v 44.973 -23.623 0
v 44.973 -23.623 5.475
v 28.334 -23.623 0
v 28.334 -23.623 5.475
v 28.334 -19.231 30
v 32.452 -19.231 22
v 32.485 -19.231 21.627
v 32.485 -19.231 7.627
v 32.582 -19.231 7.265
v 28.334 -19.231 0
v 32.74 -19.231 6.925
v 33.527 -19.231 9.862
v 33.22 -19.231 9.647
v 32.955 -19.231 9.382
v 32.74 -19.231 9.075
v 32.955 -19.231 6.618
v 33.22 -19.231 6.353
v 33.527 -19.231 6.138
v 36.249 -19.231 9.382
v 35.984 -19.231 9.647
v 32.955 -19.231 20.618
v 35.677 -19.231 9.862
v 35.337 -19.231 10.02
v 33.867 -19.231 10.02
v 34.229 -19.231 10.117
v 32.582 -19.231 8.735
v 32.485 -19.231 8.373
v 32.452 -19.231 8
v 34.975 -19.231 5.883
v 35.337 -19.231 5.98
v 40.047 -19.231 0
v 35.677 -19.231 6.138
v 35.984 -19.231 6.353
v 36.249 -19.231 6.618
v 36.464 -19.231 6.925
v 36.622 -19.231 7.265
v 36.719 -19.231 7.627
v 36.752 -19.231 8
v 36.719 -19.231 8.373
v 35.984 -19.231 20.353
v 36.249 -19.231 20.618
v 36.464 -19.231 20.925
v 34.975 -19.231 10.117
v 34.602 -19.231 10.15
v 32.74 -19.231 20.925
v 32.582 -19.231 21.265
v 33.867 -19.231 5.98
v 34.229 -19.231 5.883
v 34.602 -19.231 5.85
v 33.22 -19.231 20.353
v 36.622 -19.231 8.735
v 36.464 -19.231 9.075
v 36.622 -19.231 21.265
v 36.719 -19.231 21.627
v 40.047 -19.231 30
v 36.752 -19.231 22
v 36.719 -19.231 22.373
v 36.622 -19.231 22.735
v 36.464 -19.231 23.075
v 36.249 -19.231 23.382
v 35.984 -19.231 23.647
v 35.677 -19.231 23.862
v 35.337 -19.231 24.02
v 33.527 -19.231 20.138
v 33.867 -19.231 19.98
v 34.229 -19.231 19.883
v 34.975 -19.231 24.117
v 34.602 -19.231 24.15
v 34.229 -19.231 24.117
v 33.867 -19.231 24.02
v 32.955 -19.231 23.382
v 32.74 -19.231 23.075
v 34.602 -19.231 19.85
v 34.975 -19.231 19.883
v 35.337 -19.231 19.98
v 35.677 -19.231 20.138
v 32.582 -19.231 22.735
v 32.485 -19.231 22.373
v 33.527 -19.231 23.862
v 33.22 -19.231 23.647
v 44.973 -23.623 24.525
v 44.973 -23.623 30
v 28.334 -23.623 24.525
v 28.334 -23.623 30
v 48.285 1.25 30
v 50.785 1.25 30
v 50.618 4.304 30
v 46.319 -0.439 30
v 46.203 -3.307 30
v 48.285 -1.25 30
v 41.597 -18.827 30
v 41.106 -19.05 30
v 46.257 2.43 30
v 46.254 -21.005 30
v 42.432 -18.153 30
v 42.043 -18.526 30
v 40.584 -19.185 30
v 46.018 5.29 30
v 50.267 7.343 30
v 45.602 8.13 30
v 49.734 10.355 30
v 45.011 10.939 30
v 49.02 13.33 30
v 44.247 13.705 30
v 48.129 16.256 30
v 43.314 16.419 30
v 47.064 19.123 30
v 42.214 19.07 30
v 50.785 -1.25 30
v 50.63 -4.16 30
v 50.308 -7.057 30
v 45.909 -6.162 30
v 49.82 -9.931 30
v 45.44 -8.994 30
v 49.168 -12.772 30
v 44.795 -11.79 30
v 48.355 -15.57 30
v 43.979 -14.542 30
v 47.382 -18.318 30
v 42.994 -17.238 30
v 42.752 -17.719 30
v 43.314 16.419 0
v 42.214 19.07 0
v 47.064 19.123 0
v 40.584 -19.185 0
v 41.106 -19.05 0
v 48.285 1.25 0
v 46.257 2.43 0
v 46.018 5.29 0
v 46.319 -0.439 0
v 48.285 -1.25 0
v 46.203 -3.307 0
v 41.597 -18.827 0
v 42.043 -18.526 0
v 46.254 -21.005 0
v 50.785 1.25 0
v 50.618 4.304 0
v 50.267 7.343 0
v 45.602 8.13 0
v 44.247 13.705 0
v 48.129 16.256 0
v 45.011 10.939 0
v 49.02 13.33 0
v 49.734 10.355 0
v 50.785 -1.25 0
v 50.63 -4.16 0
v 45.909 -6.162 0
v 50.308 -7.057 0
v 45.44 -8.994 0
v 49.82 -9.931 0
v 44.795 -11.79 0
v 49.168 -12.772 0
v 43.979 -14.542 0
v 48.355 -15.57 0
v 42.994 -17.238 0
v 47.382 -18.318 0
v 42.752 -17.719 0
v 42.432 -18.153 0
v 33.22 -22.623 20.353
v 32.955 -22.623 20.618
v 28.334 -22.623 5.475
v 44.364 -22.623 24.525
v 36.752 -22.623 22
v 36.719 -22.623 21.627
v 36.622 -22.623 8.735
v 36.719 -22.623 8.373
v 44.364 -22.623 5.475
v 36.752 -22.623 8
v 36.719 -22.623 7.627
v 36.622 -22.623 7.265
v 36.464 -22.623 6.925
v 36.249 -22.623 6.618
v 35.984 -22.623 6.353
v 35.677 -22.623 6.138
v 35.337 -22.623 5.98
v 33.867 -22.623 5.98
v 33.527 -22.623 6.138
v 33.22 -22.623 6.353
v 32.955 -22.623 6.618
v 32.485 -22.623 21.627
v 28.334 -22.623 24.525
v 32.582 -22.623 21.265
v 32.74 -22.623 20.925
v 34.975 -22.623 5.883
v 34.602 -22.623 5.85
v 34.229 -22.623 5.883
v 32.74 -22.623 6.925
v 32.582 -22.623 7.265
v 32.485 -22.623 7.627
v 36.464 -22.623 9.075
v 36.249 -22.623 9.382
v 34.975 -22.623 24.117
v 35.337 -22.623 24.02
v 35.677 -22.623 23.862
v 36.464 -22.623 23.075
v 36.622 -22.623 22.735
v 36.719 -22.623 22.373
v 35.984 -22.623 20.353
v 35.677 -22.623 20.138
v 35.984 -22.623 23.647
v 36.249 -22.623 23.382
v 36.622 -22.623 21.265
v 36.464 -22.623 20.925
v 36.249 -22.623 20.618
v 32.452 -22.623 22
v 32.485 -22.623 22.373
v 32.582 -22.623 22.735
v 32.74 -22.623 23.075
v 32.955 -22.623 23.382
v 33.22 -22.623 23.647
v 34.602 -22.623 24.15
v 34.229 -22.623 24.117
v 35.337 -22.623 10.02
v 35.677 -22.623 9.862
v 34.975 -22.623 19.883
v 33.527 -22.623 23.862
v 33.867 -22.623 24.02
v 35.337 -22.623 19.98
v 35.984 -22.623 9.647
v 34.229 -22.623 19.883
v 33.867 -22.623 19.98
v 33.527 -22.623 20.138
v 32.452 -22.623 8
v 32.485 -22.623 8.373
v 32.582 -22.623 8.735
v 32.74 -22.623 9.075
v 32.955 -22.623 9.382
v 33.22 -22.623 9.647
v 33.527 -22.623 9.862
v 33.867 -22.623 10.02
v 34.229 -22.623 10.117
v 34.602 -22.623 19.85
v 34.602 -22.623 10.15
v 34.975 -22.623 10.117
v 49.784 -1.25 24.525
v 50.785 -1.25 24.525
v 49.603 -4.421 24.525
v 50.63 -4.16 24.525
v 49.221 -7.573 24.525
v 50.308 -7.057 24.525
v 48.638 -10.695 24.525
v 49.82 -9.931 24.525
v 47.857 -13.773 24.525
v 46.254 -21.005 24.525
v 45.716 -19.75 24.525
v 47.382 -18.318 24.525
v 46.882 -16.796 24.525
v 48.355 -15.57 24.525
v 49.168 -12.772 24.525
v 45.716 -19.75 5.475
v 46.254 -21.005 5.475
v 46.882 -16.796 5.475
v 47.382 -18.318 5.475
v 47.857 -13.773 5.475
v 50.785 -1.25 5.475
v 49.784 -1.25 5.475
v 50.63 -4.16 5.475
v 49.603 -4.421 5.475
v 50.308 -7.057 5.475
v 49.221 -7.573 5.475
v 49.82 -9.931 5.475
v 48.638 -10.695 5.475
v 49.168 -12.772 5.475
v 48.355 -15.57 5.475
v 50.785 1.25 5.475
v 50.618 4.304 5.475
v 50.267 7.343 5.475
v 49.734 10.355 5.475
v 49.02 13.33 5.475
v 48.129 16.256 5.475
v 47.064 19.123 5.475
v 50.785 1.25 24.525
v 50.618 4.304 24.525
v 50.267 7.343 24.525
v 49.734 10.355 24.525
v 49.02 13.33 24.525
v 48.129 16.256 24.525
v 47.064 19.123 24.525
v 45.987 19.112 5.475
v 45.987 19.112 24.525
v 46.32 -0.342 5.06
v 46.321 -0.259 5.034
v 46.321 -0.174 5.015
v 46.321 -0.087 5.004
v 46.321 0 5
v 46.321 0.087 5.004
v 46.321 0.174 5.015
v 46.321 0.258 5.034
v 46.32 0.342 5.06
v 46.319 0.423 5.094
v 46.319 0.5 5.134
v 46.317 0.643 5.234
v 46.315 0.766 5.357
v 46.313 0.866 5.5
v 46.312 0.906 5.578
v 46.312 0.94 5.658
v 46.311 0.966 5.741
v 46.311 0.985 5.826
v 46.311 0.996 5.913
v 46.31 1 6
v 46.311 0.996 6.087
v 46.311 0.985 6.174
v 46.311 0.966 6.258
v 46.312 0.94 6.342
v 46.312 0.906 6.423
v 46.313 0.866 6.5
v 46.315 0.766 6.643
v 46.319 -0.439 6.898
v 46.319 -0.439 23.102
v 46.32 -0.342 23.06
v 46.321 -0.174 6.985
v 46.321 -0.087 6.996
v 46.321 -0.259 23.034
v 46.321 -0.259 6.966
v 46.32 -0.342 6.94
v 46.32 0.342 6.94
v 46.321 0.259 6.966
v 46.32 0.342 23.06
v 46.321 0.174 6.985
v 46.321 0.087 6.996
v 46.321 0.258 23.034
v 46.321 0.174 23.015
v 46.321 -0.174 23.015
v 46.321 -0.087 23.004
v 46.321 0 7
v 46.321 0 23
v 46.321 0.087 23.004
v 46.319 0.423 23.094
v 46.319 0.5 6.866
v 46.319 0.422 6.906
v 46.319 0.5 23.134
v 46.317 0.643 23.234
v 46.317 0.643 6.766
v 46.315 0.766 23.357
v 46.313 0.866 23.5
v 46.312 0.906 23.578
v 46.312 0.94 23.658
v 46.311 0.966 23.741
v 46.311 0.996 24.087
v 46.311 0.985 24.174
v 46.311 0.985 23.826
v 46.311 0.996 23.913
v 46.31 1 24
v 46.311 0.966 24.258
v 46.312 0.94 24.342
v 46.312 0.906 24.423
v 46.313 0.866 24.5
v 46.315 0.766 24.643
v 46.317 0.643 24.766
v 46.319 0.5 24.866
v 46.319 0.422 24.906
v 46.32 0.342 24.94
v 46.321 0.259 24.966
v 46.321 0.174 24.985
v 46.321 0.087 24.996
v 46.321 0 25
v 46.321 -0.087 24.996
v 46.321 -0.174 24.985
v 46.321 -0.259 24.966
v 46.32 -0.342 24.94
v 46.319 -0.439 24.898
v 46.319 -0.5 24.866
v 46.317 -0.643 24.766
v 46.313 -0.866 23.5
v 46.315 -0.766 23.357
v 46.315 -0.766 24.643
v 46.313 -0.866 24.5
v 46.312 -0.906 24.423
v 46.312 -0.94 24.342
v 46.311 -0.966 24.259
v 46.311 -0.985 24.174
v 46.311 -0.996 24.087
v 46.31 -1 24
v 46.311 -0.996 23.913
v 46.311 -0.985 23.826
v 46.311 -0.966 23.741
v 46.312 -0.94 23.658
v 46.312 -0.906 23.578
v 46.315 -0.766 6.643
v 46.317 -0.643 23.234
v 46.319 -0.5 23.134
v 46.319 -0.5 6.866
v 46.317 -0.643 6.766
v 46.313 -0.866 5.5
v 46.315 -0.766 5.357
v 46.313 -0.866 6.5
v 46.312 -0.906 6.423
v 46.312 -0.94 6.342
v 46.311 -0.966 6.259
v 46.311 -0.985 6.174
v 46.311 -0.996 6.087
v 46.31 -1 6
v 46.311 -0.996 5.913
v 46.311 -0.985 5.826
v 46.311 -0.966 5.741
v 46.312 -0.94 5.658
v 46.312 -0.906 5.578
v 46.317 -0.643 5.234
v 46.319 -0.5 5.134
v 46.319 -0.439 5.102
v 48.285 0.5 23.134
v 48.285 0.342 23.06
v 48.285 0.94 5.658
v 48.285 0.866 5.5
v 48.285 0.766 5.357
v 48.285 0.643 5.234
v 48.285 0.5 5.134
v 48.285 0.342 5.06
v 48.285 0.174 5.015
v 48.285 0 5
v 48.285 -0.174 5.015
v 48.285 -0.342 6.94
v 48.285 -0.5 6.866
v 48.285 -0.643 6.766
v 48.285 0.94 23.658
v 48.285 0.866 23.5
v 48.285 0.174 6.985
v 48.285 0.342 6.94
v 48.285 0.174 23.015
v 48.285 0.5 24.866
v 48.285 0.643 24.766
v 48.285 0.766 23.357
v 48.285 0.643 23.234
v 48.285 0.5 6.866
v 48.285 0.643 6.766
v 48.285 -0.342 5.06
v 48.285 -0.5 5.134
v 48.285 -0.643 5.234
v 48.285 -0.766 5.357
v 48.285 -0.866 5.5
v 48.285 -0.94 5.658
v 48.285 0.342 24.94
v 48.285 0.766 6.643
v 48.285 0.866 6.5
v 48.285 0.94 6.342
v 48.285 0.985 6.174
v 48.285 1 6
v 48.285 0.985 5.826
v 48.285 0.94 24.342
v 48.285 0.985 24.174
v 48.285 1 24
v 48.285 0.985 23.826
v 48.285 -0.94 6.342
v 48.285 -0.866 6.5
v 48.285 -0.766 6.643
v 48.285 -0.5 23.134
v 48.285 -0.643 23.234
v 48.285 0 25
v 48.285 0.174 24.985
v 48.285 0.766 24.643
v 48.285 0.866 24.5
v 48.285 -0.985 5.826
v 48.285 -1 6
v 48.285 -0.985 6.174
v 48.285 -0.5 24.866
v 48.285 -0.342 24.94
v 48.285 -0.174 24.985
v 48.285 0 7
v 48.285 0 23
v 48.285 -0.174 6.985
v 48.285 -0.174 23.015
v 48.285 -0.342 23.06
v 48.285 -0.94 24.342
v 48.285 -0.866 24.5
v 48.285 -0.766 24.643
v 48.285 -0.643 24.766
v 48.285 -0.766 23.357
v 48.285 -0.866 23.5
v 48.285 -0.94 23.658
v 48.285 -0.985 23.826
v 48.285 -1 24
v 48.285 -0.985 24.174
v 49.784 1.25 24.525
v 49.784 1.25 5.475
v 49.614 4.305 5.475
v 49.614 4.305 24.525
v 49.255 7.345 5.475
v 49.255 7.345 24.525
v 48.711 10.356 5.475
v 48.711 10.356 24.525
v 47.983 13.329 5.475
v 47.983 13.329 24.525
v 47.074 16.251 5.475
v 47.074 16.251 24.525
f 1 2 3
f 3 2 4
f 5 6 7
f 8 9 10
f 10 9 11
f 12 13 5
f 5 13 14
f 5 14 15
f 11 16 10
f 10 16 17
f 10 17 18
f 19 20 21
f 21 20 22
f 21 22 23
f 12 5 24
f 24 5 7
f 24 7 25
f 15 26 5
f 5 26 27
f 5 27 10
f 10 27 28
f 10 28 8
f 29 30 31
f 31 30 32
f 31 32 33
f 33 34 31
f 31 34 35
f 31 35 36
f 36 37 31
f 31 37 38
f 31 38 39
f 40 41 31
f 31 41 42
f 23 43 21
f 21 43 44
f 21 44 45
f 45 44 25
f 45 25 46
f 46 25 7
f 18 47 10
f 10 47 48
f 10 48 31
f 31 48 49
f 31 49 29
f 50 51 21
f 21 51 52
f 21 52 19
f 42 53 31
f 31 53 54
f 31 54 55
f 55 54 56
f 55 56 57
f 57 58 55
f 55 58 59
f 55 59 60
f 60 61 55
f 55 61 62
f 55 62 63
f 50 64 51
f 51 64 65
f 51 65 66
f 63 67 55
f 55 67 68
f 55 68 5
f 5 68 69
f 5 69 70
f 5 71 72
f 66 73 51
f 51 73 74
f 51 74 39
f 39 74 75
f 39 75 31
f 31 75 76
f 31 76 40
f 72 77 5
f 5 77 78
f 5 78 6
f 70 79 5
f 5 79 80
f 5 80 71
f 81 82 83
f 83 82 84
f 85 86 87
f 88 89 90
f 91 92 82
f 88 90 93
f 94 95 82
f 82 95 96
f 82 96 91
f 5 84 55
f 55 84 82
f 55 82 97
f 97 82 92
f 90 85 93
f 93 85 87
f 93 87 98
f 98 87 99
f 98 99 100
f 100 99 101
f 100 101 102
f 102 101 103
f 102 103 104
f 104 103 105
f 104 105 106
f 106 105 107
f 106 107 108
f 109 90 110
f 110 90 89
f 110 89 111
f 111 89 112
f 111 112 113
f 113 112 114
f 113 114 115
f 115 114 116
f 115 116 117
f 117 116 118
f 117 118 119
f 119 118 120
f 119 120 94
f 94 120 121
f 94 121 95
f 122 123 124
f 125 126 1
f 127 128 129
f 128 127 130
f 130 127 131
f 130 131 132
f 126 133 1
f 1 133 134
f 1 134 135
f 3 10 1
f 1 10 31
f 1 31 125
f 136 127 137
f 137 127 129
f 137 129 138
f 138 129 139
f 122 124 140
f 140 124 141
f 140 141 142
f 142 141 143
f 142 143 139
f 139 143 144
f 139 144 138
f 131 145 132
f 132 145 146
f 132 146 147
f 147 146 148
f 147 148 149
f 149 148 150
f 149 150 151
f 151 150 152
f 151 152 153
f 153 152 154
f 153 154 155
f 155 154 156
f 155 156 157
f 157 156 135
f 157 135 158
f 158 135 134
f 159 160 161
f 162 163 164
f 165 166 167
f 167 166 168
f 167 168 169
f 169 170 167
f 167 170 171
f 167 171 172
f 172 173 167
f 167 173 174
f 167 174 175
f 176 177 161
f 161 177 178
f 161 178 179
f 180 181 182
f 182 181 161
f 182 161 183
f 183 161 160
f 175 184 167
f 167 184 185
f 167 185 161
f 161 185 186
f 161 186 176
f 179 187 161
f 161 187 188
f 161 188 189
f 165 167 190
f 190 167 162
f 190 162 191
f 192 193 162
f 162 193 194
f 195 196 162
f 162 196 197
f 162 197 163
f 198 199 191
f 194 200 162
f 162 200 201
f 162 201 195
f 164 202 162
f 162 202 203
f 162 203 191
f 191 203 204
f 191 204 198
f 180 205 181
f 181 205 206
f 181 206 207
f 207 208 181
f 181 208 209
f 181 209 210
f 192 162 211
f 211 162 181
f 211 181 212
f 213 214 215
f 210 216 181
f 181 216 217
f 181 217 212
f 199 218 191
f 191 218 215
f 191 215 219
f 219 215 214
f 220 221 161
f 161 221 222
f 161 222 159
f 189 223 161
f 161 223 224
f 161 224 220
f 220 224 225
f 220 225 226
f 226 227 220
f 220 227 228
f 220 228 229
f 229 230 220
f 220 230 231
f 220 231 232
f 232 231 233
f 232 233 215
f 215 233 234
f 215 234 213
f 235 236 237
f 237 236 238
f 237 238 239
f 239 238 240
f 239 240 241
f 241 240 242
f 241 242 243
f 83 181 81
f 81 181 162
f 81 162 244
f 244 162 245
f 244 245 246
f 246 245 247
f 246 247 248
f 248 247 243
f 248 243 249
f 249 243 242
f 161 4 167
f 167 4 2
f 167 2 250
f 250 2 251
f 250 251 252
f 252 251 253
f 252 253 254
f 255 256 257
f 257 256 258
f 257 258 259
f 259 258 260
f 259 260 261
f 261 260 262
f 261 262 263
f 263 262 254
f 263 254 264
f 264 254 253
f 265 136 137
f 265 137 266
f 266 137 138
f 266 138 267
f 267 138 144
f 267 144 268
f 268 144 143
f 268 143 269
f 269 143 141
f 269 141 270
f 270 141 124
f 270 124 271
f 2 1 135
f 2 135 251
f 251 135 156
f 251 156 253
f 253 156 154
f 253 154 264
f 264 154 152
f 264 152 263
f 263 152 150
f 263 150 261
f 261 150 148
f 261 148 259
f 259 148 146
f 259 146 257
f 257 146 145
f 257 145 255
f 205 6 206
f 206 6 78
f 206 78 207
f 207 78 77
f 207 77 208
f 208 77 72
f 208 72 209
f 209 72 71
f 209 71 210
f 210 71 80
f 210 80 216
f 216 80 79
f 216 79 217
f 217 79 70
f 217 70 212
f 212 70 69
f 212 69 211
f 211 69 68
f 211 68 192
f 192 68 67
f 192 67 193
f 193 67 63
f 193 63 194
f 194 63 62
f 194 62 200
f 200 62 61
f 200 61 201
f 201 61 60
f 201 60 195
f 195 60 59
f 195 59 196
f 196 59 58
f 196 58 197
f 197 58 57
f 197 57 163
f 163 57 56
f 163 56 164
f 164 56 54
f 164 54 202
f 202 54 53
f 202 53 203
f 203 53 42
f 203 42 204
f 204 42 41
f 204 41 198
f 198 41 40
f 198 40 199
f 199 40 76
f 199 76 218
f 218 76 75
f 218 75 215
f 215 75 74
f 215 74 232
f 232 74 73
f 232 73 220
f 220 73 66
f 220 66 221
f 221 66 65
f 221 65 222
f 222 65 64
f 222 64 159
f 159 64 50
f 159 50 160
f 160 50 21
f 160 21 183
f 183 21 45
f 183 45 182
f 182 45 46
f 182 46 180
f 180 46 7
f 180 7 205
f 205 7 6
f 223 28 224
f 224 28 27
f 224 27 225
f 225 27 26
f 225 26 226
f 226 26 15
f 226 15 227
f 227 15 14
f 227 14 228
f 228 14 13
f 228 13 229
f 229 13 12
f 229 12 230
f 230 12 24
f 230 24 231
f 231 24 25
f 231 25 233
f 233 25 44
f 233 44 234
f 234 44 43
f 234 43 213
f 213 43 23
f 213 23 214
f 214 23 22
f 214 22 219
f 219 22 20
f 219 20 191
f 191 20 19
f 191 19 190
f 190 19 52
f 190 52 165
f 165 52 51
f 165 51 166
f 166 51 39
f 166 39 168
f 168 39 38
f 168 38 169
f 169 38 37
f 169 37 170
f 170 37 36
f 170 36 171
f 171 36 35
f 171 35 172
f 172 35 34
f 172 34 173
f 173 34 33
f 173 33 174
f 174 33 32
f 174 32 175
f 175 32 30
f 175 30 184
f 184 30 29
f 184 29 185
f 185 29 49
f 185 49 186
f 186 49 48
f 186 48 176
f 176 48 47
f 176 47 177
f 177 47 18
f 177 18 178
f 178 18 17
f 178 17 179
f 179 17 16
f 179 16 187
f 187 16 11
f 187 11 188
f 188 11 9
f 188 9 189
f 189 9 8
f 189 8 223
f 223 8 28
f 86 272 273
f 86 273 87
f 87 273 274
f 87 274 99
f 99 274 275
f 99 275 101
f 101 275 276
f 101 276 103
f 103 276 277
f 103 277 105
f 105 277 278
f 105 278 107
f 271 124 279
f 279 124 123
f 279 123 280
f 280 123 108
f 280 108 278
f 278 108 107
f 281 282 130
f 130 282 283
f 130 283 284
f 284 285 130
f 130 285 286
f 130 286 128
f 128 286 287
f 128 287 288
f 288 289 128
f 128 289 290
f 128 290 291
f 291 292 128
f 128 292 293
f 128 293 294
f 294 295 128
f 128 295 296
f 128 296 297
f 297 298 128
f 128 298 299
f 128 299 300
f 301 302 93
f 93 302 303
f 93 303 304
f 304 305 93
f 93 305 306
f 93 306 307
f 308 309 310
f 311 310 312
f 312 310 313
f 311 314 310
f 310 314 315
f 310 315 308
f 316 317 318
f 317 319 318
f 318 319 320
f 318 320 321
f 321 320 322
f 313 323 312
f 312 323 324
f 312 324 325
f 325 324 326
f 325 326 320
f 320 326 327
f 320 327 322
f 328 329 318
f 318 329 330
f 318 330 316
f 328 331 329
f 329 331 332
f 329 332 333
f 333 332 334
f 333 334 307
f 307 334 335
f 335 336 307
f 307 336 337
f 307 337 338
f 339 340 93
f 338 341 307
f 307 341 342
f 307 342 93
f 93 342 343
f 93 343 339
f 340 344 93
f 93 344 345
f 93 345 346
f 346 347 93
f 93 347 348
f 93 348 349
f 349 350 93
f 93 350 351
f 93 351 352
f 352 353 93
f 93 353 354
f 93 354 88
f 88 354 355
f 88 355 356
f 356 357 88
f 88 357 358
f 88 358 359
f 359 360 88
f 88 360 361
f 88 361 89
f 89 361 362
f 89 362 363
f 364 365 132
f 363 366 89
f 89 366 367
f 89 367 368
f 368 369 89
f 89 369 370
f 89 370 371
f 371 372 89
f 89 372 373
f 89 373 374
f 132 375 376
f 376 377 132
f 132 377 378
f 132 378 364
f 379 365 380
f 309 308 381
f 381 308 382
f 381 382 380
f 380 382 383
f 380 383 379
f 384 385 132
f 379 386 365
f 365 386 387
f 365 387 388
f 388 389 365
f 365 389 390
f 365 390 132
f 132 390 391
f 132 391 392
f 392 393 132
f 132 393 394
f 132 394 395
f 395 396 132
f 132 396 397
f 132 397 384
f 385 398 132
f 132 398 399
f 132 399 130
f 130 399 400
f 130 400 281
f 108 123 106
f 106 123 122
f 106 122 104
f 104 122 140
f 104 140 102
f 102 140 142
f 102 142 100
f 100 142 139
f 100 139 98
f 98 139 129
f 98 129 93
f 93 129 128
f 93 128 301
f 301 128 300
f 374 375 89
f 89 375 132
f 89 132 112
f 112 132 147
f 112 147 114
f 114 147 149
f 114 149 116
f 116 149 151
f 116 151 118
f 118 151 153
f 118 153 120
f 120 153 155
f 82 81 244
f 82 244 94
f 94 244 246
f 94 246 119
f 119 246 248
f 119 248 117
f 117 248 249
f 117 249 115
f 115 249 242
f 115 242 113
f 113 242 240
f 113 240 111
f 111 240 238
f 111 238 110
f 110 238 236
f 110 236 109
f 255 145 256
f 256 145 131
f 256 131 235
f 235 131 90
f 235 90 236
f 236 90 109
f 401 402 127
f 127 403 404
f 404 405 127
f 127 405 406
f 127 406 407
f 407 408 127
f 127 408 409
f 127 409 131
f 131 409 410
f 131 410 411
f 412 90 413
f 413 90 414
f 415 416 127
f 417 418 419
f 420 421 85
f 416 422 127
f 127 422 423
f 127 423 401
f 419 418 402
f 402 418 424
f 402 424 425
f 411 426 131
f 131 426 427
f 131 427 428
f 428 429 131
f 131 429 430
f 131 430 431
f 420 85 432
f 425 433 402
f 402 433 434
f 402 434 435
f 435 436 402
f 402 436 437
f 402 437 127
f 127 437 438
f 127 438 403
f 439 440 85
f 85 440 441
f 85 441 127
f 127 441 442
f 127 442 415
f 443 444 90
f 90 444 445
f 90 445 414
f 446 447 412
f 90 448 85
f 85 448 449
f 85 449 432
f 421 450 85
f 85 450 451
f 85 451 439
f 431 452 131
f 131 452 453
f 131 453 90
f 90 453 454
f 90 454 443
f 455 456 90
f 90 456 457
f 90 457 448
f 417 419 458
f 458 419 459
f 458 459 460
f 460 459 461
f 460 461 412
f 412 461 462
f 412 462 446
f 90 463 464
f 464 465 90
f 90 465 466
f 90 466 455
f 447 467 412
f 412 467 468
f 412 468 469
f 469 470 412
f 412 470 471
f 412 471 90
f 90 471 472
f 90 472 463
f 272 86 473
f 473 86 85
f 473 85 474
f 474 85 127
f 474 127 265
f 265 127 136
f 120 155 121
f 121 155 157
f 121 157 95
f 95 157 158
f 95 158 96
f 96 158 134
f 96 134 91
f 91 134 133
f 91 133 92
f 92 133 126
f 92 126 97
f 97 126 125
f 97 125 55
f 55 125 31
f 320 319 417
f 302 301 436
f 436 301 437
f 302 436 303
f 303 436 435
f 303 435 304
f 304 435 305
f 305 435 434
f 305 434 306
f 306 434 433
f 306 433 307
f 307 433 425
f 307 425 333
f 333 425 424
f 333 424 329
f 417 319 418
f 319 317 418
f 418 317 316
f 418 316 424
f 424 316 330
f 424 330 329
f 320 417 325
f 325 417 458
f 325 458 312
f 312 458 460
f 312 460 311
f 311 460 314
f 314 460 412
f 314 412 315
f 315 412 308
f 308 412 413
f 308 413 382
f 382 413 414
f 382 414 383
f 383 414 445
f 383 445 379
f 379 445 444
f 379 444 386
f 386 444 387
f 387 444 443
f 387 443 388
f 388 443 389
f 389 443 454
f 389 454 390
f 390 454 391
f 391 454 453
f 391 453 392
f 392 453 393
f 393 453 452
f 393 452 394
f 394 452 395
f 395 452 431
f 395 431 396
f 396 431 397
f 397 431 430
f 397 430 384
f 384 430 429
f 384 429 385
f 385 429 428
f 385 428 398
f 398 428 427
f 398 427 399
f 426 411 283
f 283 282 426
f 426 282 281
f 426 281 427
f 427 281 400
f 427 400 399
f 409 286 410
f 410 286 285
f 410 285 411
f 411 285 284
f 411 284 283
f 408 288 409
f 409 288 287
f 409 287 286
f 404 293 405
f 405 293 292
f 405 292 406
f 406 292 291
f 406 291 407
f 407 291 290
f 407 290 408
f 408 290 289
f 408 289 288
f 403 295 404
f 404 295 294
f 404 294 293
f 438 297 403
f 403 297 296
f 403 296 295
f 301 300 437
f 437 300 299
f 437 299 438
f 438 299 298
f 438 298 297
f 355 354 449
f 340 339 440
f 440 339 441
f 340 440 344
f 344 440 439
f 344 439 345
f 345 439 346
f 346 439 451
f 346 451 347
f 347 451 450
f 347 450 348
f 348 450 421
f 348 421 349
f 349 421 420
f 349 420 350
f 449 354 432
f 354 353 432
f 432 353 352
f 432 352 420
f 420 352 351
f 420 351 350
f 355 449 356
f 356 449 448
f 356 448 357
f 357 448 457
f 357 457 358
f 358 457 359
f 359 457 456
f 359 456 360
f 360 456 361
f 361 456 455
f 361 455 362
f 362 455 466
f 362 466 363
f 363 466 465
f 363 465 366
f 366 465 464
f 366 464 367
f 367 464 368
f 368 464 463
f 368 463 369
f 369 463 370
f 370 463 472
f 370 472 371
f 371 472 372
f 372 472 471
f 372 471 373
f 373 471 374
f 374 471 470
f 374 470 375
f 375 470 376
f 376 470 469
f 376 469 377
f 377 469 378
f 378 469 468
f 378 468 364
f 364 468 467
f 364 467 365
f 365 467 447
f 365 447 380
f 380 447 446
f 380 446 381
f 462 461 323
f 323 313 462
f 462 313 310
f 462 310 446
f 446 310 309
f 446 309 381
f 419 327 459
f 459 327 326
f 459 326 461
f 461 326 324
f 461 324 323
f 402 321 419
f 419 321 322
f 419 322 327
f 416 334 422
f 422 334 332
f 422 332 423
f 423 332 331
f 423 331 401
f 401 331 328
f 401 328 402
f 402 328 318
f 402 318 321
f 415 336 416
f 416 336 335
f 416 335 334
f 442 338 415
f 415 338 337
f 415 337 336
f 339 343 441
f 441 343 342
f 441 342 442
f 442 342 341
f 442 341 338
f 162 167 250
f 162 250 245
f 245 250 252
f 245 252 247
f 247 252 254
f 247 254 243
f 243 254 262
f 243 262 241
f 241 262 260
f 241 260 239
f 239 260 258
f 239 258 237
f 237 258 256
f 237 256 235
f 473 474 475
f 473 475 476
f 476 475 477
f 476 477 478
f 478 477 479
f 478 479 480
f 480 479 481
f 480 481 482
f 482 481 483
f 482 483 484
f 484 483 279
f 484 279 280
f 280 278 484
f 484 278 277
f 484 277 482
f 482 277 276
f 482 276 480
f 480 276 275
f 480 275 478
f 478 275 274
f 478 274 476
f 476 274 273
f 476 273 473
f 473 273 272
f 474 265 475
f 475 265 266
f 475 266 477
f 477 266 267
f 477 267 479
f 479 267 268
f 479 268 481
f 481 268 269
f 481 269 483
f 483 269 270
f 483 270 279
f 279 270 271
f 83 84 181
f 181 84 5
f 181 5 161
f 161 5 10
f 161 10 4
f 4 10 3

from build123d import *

# Parameters (mm, degrees)
EXTRUSION1_DEPTH   = 30
FILLET1_R          = 3.175
SKETCH2_R          = 1
EXTRUSION8_DEPTH   = 2
SKETCH3_R          = 2.15
EXTRUSION11_DEPTH  = 71.357498555
EXTRUSION12_DEPTH  = 9.525
CUT_EXTRUDE1_DEPTH = 1.27


with BuildPart() as part:
    # Sketch1 → Extrusion1 (new body)
    with BuildSketch(Plane.XY):
        with BuildLine():
            Line((47.06353616, 19.123444108), (42.213867638, 19.070033288))
            ThreePointArc((42.213867638, 19.070033288), (46.321150196, -0.088533061), (42.140232503, -19.23116511))
            Line((42.140232503, -19.23116511), (27.063632515, -19.23116511))
            Line((27.063632515, -19.23116511), (27.063633082, -22.12345478))
            Line((27.063633082, -22.12345478), (27.063633082, -23.62345478))
            Line((27.063633082, -23.62345478), (44.972996835, -23.62345478))
            ThreePointArc((44.972996835, -23.62345478), (49.168432062, -12.771632691), (50.784831526, -1.249871881))
            Line((50.784831526, -1.249871881), (48.284855505, -1.250061095))
            Line((48.284855505, -1.250061095), (48.284855505, 1.249938905))
            Line((48.284855505, 1.249938905), (50.784855505, 1.249938905))
            ThreePointArc((50.784855505, 1.249938905), (49.733715684, 10.355236056), (47.06353616, 19.123444108))
        make_face()
    extrude(amount=EXTRUSION1_DEPTH)

    # Fillet1
    fillet1_edges = [part.edges().sort_by_distance(p)[0] for p in [
        (42.140232503, -19.23116511, 15),
    ]]
    fillet(fillet1_edges, radius=FILLET1_R)

    # Sketch2 → Extrusion8 (cut)
    with BuildSketch(Plane(origin=(48.284855505, 0, 0), x_dir=(0, 0, -1), z_dir=(1, 0, 0))):
        with Locations(Location((-24, -6.1095e-05, 0), (0, 0, 90))):
            Circle(SKETCH2_R)
        with Locations(Location((-6, -6.1095e-05, 0), (0, 0, 90))):
            Circle(SKETCH2_R)
    extrude(amount=-EXTRUSION8_DEPTH, mode=Mode.SUBTRACT)

    # Sketch3 → Extrusion11 (cut, through all)
    with BuildSketch(Plane(origin=(0, -19.23116511, 0), x_dir=(-1, 0, 0), z_dir=(0, 1, 0))):
        with Locations((-34.601932509, 8)):
            Circle(SKETCH3_R)
        with Locations((-34.601932509, 22)):
            Circle(SKETCH3_R)
    extrude(amount=-EXTRUSION11_DEPTH, mode=Mode.SUBTRACT)

    # Sketch4 → Extrusion12 (cut, symmetric)
    with BuildSketch(Plane.XY.offset(15)):
        with BuildLine():
            Line((49.784318727, 1.249938905), (50.784855505, 1.249938905))
            ThreePointArc((50.784855505, 1.249938905), (49.733715684, 10.355236056), (47.06353616, 19.123444108))
            Line((47.06353616, 19.123444108), (45.987026195, 19.111588188))
            ThreePointArc((45.987026195, 19.111588188), (48.711366707, 10.356301793), (49.784318727, 1.249938905))
        make_face()
        with BuildLine():
            ThreePointArc((44.364346419, -22.62345478), (48.272126893, -12.240444134), (49.784292363, -1.249947608))
            Line((49.784292363, -1.249947608), (50.784831526, -1.249871881))
            ThreePointArc((50.784831526, -1.249871881), (49.168432062, -12.771632691), (44.972996835, -23.62345478))
            Line((44.972996835, -23.62345478), (27.063633082, -23.62345478))
            Line((27.063633082, -23.62345478), (27.063633082, -22.62345478))
            Line((27.063633082, -22.62345478), (44.364346419, -22.62345478))
        make_face()
    extrude(amount=EXTRUSION12_DEPTH, both=True, mode=Mode.SUBTRACT)

    # Sketch5 → Cut-Extrude1 (cut)
    with BuildSketch(Plane.ZY.offset(-27.063633082)):
        Polygon((0, -19.23116511), (0, -23.62345478), (5.475, -23.62345478), (5.475, -22.62345478), (24.525, -22.62345478), (24.525, -23.62345478), (30, -23.62345478), (30, -19.23116511), align=None)
    extrude(amount=-CUT_EXTRUDE1_DEPTH, mode=Mode.SUBTRACT)


with BuildPart() as cut_extrude1_kept_piece:
    # of the separate pieces the step leaves, the one the design keeps (cut_extrude1_pieces_kept)
    add(part.part.solids().sort_by_distance((42.99418243, -17.237727528, 0))[0])


solid = cut_extrude1_kept_piece.part
